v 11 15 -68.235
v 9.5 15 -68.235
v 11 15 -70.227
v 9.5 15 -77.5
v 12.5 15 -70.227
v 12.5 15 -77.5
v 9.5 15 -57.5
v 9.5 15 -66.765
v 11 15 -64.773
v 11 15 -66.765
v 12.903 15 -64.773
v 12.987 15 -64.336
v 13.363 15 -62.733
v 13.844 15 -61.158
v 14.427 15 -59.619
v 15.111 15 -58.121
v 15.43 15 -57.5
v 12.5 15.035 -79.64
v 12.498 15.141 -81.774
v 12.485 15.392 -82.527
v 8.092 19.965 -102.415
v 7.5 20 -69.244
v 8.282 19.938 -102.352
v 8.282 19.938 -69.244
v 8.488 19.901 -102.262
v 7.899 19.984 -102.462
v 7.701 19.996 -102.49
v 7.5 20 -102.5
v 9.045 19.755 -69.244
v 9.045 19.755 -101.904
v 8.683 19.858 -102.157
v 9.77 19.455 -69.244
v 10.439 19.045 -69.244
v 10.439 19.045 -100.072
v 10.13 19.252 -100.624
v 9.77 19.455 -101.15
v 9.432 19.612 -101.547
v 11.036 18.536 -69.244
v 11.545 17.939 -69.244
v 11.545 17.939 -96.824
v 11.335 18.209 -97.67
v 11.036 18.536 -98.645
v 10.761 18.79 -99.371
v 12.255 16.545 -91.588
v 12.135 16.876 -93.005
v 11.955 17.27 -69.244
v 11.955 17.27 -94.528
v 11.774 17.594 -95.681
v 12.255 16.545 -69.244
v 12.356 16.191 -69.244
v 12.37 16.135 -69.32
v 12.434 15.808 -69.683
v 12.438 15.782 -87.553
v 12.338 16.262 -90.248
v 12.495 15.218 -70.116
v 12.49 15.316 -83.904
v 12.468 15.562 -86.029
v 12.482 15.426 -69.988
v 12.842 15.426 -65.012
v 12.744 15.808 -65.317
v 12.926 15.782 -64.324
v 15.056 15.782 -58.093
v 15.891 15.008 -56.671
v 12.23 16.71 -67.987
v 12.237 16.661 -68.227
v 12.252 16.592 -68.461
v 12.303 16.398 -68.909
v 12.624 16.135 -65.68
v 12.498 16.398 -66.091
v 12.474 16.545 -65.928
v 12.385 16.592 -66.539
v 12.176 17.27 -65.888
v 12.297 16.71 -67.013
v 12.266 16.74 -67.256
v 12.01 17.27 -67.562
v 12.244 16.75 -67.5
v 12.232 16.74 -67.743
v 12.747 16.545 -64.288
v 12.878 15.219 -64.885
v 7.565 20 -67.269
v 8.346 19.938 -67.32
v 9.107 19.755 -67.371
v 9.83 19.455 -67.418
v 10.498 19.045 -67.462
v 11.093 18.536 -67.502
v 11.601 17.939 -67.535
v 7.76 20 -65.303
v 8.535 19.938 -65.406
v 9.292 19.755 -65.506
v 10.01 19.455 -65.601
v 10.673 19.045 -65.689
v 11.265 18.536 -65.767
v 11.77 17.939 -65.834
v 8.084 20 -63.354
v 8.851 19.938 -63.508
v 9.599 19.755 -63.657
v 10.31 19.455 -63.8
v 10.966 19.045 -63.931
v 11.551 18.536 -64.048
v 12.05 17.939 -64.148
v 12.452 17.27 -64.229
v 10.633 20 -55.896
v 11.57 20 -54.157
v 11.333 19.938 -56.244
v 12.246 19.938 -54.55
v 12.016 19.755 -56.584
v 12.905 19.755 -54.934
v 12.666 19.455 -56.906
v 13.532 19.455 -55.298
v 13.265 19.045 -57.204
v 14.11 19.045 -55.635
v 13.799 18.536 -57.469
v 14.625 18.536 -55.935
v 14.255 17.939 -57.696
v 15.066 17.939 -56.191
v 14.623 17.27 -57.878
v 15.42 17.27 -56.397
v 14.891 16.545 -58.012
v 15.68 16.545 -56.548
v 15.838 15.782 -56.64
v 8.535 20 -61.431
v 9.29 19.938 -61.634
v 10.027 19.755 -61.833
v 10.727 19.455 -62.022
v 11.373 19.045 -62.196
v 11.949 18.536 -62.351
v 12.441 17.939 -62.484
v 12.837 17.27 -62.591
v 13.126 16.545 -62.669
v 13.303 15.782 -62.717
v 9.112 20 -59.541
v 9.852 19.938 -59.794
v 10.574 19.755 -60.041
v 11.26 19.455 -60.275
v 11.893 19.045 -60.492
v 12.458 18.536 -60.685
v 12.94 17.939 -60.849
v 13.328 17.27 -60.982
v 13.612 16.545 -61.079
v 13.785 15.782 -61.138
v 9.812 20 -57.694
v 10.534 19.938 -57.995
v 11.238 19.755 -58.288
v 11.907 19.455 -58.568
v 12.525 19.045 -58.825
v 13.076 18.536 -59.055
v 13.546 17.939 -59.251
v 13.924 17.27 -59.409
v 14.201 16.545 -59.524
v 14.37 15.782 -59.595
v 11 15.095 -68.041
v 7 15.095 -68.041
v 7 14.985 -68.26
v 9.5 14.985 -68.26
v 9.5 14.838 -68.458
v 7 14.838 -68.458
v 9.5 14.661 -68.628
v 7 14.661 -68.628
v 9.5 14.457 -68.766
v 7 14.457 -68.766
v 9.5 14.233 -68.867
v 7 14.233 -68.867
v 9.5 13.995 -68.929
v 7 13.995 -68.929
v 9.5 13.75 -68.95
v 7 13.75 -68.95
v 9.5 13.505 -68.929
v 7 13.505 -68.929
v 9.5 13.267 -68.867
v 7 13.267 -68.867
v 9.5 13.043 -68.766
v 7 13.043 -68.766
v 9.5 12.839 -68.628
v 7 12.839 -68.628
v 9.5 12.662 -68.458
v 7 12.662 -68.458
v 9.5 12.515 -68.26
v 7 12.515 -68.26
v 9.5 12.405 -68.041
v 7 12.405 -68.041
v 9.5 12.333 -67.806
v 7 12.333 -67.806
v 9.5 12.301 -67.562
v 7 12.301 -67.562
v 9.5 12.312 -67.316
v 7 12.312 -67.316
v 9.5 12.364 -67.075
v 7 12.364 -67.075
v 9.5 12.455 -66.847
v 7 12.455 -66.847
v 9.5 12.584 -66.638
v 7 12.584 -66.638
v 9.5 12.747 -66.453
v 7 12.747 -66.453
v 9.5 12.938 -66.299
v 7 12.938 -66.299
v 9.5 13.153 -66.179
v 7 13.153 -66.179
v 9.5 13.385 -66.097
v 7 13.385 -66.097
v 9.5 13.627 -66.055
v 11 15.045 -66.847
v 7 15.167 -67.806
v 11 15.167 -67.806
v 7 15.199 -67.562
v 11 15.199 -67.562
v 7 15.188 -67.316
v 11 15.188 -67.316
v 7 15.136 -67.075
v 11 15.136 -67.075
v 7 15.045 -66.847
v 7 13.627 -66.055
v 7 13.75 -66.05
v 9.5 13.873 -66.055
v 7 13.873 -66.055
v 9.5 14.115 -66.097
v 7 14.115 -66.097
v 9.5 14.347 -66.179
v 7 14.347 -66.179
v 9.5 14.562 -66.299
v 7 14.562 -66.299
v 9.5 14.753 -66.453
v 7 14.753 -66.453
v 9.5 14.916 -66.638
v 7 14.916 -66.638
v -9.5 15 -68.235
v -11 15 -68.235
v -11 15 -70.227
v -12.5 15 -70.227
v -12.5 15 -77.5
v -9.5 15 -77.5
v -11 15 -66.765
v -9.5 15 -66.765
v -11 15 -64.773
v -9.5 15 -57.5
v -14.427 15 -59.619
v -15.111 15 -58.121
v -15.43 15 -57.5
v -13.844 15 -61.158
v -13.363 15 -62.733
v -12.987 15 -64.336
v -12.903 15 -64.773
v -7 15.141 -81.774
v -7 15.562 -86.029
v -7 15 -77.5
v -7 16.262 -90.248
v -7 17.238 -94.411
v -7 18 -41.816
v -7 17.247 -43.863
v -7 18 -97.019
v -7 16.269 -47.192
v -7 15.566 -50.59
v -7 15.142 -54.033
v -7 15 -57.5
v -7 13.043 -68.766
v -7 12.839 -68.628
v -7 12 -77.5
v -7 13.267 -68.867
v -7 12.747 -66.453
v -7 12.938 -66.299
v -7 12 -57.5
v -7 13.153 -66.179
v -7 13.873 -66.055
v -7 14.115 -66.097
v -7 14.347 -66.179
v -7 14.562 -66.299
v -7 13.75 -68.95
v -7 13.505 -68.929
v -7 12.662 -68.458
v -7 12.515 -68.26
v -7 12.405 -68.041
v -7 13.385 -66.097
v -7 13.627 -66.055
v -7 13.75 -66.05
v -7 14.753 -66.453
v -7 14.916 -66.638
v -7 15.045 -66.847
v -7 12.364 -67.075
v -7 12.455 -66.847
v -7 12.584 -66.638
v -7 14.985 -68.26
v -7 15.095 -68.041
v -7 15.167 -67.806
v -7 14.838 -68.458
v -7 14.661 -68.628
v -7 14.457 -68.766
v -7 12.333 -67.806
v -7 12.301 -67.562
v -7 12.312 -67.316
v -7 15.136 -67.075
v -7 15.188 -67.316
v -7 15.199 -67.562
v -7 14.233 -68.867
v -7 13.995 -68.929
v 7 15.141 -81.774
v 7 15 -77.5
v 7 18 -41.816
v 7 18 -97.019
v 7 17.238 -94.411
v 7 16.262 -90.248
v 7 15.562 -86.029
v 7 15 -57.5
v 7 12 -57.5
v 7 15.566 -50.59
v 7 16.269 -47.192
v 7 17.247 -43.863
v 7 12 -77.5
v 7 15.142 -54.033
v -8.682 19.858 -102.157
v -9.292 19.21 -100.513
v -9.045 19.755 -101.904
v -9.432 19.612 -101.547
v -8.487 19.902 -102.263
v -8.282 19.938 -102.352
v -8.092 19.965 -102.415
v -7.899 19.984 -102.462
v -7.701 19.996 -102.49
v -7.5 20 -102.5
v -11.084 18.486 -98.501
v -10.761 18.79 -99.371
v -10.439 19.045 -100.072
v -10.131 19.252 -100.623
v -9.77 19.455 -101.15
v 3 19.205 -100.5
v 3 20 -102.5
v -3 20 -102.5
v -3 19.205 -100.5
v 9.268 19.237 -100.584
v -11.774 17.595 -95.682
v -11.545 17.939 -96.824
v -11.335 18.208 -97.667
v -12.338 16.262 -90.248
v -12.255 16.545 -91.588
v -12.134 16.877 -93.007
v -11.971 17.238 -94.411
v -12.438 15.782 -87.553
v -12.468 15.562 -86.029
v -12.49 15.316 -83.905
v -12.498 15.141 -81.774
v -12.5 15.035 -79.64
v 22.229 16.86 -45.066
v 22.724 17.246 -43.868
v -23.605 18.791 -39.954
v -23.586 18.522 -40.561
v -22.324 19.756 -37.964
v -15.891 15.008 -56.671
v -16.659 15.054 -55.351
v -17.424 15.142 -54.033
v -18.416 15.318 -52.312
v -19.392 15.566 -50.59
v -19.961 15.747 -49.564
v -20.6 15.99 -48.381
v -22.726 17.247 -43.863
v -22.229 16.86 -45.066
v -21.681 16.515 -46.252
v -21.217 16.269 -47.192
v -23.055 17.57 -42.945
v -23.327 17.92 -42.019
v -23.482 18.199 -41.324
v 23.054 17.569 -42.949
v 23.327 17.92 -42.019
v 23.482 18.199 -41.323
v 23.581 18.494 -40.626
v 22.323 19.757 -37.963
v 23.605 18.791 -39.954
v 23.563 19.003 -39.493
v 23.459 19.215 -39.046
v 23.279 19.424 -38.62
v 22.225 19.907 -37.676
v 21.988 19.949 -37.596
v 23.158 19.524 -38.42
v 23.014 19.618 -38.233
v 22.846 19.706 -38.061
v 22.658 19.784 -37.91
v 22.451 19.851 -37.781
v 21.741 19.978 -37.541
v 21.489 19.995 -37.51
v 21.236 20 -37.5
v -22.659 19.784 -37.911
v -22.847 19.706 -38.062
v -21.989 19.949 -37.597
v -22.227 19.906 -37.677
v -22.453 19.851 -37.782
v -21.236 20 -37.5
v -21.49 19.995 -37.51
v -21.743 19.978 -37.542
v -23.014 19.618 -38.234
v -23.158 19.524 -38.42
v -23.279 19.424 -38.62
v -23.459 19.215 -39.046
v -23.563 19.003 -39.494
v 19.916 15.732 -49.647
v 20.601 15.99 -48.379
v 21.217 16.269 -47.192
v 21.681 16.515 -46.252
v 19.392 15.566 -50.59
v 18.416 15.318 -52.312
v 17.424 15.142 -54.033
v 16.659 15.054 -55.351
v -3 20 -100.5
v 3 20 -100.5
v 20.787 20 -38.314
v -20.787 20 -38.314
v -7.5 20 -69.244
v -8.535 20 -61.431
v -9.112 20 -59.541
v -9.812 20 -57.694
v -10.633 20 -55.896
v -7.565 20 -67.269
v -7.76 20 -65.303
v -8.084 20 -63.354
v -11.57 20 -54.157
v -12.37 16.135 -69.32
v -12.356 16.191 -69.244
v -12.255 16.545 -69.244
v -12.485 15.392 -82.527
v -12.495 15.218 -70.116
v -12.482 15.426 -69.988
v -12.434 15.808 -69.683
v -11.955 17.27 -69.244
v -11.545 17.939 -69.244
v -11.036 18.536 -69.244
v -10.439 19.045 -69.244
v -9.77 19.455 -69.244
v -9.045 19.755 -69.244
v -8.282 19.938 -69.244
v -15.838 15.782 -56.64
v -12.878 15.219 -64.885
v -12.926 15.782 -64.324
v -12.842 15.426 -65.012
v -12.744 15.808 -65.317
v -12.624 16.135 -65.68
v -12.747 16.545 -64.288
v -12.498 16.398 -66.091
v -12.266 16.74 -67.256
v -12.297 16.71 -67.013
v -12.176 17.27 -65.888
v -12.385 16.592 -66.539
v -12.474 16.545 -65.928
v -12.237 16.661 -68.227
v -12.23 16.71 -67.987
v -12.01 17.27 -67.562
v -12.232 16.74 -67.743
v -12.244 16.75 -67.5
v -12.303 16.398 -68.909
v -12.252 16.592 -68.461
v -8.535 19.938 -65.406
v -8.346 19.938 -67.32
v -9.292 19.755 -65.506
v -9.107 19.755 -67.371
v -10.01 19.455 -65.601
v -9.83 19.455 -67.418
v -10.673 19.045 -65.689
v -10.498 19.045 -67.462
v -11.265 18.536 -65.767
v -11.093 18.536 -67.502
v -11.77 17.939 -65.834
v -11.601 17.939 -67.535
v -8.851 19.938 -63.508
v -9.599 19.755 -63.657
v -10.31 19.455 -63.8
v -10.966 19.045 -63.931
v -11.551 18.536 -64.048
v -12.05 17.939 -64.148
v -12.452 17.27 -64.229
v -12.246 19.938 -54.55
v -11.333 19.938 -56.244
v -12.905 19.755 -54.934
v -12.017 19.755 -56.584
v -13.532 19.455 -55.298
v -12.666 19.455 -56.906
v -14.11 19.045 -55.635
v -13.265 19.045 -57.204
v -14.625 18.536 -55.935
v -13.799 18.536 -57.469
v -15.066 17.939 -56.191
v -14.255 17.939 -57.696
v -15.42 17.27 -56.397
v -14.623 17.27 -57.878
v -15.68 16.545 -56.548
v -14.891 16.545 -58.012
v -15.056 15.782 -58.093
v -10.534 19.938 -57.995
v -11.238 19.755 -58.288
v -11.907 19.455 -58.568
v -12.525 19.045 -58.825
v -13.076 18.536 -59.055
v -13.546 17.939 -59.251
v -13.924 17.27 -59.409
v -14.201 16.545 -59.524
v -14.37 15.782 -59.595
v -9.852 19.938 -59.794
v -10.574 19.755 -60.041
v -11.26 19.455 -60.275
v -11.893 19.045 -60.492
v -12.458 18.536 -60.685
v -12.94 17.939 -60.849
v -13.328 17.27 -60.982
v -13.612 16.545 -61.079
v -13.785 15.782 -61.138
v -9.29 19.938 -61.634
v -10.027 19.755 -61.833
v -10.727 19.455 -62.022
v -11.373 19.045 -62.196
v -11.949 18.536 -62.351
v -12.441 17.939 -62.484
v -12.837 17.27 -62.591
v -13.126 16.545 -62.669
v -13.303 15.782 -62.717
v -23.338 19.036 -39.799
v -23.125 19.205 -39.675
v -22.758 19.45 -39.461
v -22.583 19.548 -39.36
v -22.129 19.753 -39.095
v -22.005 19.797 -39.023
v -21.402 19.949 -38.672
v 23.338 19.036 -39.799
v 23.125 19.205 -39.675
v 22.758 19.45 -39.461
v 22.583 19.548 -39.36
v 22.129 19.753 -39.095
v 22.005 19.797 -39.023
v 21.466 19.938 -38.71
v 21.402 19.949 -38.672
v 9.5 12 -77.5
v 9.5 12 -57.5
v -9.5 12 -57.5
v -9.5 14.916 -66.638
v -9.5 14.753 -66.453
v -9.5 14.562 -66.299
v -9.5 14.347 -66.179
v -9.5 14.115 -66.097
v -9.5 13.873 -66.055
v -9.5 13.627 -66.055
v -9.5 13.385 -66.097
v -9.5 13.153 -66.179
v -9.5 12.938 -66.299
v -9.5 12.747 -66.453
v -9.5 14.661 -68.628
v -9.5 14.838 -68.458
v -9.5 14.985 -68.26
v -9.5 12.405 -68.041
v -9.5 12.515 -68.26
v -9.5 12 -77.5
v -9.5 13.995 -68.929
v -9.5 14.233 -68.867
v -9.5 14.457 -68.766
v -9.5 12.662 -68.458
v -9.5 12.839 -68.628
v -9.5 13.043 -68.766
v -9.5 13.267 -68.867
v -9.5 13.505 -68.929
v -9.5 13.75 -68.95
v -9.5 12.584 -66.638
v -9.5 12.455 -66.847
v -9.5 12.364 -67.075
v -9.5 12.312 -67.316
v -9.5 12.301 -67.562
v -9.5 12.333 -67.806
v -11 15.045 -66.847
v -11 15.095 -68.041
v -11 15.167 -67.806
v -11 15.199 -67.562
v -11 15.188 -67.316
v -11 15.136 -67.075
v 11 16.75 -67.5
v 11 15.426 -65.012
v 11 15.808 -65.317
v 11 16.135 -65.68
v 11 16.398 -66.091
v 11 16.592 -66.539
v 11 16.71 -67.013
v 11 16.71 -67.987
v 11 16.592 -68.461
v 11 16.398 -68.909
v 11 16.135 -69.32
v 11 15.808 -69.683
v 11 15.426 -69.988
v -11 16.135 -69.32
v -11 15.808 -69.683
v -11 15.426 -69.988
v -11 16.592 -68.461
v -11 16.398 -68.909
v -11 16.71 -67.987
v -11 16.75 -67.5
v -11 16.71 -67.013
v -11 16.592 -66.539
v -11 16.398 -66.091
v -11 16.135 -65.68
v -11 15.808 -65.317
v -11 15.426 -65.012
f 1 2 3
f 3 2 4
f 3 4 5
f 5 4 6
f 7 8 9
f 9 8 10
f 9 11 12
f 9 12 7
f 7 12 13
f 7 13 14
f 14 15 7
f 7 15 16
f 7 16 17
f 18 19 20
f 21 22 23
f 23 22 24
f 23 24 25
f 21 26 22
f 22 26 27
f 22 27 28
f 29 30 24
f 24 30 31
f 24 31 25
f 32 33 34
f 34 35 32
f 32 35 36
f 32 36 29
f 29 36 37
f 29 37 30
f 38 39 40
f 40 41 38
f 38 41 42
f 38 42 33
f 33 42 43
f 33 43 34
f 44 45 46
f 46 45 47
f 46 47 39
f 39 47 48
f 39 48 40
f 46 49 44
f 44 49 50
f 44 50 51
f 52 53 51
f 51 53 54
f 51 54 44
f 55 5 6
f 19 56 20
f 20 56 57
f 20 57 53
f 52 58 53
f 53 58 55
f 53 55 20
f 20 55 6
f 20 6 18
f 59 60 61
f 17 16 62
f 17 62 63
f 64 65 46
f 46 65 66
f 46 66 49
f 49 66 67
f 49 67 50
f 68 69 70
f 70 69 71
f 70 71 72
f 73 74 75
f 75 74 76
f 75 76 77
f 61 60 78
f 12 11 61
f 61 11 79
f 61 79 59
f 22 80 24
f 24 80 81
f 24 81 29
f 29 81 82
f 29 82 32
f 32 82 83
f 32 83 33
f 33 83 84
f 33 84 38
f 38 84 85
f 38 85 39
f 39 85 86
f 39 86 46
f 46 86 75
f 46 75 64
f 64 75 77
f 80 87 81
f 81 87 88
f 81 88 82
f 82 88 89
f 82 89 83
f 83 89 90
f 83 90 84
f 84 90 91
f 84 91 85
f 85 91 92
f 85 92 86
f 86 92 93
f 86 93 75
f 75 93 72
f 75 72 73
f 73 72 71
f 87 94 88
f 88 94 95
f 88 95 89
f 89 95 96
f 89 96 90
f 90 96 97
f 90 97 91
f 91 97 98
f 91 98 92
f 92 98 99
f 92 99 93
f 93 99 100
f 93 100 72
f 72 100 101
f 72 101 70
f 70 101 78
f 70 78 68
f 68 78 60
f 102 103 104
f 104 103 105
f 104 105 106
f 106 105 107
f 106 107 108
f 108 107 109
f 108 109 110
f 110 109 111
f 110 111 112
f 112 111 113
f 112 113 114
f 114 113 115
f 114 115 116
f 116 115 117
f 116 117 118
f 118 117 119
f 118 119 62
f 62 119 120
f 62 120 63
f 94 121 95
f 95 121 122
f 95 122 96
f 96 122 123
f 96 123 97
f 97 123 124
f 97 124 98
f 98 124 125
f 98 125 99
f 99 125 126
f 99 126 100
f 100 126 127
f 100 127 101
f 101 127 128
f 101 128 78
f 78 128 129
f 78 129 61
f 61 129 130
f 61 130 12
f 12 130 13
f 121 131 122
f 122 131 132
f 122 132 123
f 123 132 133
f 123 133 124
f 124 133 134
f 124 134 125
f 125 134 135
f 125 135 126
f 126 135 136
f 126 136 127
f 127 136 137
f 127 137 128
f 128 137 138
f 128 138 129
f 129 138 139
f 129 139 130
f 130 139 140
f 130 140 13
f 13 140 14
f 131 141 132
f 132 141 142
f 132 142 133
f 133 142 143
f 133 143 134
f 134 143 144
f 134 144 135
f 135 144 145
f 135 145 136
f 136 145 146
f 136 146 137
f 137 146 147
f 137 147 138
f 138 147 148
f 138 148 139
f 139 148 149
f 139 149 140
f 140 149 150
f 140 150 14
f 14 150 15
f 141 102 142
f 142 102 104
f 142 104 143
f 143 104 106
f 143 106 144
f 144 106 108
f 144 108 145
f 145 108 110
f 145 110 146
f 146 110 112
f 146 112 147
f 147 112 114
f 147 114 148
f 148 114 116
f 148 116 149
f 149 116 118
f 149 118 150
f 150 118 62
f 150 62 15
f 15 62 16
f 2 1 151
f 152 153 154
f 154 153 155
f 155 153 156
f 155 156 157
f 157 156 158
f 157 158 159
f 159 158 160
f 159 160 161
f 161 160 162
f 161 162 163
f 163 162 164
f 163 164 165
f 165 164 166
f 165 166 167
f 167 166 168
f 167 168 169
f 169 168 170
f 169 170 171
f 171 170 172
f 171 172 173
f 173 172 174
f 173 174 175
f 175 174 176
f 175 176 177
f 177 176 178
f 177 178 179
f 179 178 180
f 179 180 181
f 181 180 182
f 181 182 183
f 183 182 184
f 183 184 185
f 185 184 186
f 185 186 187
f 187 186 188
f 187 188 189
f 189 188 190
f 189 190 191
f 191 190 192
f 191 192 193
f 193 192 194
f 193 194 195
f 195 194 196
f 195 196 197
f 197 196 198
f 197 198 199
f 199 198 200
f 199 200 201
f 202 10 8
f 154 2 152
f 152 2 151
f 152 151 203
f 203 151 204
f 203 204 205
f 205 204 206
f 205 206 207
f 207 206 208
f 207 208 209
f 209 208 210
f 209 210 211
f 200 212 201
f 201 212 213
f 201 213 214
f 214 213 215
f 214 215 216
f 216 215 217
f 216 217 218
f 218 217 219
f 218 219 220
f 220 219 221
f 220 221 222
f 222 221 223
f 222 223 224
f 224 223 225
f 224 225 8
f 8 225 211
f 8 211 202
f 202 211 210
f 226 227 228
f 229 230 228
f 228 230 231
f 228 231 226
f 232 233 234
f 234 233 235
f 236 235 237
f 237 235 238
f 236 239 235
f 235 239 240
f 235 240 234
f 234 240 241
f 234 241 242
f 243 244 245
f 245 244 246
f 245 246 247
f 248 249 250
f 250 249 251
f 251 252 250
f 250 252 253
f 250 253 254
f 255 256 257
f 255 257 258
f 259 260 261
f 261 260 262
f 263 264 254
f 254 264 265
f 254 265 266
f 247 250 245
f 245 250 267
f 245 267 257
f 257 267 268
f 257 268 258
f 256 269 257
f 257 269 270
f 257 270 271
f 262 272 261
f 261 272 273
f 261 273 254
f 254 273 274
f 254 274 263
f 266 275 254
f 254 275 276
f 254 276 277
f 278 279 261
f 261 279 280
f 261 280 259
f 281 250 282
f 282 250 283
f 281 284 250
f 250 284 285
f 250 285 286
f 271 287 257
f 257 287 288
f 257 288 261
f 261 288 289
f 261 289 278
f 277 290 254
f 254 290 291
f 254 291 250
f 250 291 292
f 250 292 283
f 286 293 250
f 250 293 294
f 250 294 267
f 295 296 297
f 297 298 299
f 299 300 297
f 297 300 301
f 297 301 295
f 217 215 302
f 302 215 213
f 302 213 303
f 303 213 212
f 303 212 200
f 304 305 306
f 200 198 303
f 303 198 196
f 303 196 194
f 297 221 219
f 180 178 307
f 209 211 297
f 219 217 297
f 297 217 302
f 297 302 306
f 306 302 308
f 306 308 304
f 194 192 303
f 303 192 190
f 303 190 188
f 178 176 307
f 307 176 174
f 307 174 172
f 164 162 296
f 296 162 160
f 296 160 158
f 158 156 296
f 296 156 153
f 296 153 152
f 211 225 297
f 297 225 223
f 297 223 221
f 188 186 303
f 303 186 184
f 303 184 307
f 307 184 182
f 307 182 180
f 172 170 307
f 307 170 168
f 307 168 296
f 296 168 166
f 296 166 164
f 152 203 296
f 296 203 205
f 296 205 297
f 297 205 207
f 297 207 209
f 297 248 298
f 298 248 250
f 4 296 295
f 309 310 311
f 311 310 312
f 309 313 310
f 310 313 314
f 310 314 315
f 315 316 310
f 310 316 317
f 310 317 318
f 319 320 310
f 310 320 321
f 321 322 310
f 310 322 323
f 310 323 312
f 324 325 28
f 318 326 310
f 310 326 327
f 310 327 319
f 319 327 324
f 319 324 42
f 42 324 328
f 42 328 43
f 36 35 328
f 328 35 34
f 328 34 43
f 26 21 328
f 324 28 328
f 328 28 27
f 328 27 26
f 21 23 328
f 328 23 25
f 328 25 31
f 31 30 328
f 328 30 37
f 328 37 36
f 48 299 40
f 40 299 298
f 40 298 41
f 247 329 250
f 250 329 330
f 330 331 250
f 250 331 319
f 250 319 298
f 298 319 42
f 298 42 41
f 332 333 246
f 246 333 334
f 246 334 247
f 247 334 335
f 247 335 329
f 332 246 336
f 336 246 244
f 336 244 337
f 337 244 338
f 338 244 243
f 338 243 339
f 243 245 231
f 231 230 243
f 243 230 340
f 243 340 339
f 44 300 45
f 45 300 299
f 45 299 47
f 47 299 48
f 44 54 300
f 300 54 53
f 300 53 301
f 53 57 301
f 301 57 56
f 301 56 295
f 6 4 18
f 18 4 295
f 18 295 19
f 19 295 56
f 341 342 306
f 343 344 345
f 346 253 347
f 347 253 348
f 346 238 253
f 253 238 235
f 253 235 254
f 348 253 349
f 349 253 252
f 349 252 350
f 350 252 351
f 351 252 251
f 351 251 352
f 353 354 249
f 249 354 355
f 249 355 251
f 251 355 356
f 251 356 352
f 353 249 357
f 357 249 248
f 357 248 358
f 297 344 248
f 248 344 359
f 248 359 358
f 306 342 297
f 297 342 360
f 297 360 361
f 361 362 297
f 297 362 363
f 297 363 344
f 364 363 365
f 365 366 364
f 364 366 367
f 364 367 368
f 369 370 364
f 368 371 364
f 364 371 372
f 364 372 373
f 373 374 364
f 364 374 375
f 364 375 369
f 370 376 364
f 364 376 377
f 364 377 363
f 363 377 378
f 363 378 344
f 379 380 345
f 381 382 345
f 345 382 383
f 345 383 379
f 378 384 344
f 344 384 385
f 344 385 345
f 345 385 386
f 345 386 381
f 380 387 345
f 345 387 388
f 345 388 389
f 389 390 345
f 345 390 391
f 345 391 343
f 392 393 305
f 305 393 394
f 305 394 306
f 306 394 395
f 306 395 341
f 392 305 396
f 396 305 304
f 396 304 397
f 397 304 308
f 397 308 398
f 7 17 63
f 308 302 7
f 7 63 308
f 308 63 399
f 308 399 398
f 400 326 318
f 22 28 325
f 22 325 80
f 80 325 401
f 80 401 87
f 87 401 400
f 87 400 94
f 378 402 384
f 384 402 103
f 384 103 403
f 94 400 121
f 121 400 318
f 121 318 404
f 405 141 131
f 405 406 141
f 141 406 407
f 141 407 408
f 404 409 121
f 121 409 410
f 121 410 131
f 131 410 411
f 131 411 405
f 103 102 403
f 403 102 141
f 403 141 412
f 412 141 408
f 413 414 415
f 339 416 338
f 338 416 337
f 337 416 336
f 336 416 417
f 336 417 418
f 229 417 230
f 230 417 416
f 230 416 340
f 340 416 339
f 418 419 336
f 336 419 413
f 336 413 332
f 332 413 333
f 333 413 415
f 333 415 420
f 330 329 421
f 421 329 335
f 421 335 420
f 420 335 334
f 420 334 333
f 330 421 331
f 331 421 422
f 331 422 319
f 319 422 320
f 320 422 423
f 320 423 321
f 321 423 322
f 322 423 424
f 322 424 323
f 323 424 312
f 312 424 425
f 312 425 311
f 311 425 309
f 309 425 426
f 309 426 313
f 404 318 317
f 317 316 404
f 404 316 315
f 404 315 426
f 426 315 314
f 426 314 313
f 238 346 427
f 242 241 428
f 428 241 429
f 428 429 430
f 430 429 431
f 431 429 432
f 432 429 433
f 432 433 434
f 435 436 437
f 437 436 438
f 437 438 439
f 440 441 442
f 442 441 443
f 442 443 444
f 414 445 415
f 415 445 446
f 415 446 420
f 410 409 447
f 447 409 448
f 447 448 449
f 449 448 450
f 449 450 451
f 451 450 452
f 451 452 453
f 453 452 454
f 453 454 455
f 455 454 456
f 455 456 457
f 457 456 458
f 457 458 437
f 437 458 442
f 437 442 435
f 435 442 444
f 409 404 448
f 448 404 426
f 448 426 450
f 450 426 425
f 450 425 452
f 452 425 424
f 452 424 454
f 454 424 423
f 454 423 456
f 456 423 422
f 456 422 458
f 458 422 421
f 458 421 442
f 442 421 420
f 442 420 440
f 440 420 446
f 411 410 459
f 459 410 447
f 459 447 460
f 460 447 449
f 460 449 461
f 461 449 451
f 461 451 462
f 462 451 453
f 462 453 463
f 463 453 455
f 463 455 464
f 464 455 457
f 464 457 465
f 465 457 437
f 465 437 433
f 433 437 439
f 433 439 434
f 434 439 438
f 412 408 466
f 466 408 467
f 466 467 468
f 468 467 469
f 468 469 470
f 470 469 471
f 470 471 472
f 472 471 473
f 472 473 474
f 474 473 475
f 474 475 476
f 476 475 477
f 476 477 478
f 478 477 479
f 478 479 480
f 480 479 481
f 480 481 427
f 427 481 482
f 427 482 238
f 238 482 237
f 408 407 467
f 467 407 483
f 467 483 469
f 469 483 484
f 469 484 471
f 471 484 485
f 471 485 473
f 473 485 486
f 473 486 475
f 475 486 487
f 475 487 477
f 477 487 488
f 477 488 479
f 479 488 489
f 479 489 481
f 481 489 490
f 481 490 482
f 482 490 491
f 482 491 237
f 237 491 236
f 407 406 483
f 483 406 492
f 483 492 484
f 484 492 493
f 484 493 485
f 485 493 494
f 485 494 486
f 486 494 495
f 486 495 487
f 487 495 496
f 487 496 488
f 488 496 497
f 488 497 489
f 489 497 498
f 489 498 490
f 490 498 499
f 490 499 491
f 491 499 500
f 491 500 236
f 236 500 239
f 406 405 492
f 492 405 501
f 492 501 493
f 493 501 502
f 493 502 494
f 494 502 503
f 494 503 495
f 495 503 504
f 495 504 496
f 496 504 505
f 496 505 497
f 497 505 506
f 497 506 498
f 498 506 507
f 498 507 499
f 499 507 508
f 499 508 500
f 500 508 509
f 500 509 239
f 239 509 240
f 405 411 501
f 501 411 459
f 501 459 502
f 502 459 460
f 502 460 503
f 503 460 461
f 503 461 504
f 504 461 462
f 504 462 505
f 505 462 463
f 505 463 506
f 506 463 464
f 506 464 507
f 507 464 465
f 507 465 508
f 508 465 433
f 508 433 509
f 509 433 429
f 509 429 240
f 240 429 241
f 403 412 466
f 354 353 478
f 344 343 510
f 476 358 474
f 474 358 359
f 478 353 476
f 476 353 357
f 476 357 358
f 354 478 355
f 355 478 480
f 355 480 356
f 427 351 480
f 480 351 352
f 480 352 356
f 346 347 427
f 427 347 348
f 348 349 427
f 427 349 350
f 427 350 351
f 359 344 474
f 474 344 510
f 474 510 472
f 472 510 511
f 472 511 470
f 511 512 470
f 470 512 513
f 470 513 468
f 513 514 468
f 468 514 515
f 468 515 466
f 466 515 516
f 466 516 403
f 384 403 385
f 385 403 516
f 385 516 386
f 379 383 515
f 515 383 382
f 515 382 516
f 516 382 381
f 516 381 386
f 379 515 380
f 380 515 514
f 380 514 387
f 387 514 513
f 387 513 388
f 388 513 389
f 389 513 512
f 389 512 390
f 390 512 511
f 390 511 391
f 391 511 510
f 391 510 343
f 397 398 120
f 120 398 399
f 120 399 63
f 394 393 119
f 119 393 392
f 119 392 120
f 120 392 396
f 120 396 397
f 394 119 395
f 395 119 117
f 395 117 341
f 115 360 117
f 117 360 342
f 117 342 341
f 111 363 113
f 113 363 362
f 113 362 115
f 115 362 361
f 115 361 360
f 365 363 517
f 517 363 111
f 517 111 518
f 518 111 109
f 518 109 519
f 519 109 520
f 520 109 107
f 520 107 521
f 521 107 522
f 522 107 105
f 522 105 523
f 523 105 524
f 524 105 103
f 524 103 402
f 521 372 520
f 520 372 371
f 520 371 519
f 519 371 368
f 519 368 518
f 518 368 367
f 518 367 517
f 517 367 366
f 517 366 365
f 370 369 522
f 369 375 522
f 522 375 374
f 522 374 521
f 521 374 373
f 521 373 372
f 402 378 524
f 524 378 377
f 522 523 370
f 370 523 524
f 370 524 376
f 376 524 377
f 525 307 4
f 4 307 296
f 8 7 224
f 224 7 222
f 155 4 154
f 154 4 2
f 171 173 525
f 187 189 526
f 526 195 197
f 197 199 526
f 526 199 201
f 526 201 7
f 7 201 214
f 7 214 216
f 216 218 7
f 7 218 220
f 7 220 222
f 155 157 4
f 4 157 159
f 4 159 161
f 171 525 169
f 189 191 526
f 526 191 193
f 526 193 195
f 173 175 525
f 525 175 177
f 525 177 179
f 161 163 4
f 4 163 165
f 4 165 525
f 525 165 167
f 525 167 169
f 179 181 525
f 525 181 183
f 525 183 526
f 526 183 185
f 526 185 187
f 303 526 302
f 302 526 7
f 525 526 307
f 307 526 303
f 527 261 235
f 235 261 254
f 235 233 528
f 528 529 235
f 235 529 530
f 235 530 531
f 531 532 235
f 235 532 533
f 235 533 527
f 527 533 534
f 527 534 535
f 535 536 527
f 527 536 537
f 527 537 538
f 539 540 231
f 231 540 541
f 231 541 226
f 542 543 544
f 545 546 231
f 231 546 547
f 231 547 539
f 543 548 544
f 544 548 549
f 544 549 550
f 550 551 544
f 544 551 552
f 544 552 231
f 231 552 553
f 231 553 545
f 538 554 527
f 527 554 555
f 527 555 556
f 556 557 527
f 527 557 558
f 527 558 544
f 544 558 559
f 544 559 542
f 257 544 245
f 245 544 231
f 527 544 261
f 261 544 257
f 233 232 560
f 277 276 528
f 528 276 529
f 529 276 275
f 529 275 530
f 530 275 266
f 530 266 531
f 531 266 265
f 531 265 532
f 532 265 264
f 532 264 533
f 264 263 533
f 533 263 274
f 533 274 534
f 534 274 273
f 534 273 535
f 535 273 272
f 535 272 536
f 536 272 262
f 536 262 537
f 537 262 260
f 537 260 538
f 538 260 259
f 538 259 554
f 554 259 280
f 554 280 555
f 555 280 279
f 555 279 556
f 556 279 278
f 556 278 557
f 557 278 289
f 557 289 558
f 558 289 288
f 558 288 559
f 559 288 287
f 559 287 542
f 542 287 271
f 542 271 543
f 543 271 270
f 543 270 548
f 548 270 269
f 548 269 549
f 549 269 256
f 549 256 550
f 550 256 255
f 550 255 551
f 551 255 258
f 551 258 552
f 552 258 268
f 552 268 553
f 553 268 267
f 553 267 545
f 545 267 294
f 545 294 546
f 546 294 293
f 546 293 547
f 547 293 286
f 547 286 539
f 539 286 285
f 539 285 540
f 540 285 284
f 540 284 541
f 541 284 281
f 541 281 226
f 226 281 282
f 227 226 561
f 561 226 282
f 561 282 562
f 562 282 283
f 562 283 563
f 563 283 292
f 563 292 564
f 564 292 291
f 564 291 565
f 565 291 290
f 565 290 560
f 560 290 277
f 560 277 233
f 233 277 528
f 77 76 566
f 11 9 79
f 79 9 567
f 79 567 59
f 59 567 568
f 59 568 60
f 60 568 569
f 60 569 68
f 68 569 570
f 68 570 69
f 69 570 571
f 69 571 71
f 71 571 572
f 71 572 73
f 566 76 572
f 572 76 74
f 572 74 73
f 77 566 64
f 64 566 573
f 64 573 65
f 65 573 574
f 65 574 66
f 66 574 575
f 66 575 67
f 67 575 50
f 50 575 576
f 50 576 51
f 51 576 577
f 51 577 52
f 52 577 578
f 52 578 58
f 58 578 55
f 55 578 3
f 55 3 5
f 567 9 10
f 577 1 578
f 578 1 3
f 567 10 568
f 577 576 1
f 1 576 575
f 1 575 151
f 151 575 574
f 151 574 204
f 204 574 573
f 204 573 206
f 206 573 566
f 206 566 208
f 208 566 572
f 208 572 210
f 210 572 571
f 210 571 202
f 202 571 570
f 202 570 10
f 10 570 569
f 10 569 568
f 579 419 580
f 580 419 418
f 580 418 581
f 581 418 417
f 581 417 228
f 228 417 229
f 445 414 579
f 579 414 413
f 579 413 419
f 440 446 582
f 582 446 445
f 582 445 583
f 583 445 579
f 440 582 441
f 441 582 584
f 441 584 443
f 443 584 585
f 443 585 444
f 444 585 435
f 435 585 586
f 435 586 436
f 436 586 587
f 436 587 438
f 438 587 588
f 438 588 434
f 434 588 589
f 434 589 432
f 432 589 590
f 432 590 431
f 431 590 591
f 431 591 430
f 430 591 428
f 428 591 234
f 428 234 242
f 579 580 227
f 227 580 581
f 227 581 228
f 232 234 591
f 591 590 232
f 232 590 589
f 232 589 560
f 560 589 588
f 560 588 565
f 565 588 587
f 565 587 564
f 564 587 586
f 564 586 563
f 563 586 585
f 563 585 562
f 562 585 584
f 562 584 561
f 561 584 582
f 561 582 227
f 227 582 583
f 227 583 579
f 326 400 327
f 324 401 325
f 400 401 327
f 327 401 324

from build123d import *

# Parameters (mm, degrees)
EXTRUDE_1_DEPTH           = 20
SKETCH_2_R                = 4
CUT_EXTRUDE_1_DEPTH       = 52
FILLET_1_R                = 25
FILLET_2_R                = 5
FILLET_3_R                = 10
SKETCH_4_W                = 8
SKETCH_4_H                = 8
CUT_EXTRUDE_2_DEPTH       = 5
CUT_EXTRUDE_START         = -57
SKETCH_4_2_W              = 8
SKETCH_4_2_H              = 8
CUT_EXTRUDE_3_DEPTH       = 5
SKETCH_5_W                = 15
SKETCH_5_H                = 5
CUT_EXTRUDE_4_DEPTH       = 7.5
SKETCH_6_R                = 1.45
CUT_EXTRUDE_5_DEPTH       = 10
CUT_EXTRUDE_6_DEPTH       = 7
SKETCH_9_R                = 1.45
CUT_EXTRUDE_7_DEPTH       = 90
CUT_EXTRUDE_8_DEPTH       = 116.378724321
CUT_EXTRUDE_8_DEPTH_BACK  = 116.378724321
SKETCH_10_W               = 136.912738892
SKETCH_10_H               = 37.062753894
SKETCH_11_W               = 2.5
SKETCH_11_H               = 20
EXTRUDE_2_DEPTH           = 3
CUT_EXTRUDE_9_DEPTH       = 110.555003156
CUT_EXTRUDE_9_DEPTH_BACK  = 110.555003156
SKETCH_12_R               = 1.45
CUT_EXTRUDE_10_DEPTH      = 110.555003156
CUT_EXTRUDE_10_DEPTH_BACK = 1.5
CUT_EXTRUDE_10_START      = 3
SKETCH_13_R               = 3
CUT_EXTRUDE_11_DEPTH      = 1.5
CUT_EXTRUDE_11_DEPTH_BACK = 110.555003156
CUT_EXTRUDE_11_START      = -22
SKETCH_13_2_R             = 3
SKETCH_14_W               = 6
SKETCH_14_H               = 2
CUT_EXTRUDE_12_DEPTH      = 1.5


with BuildPart() as part:
    # Эскиз1 → Бобышка-Вытянуть1 (new body)
    with BuildSketch(Plane(origin=(0, 0, 0), x_dir=(1, 0, 0), z_dir=(0, 1, 0))):
        Polygon((21, 25), (-21, 25), (-21, 0), (-28.5, 0), (-28.5, 35), (-12.5, 62.5), (-12.5, 110), (12.5, 110), (12.5, 62.5), (28.5, 35), (28.5, 0), (21, 0), align=None)
    extrude(amount=EXTRUDE_1_DEPTH)

    # Эскиз2 → Вырез-Вытянуть1 (cut)
    with BuildSketch(Plane(origin=(28.5, 0, 0), x_dir=(0, 0, -1), z_dir=(1, 0, 0))):
        with Locations((10, 10)):
            Circle(SKETCH_2_R)
    extrude(amount=-CUT_EXTRUDE_1_DEPTH, mode=Mode.SUBTRACT)

    # Скругление1
    fillet_1_edges = [part.edges().sort_by_distance(p)[0] for p in [
        (28.5, 10, -35),
        (-28.5, 10, -35),
        (-12.5, 10, -62.5),
        (12.5, 10, -62.5),
    ]]
    fillet(fillet_1_edges, radius=FILLET_1_R)

    # Скругление2
    fillet_2_edges = [part.edges().sort_by_distance(p)[0] for p in [
        (28.5, 0, -14.128221453),
        (24.75, 0, 0),
        (-24.75, 0, 0),
        (-12.5, 0, -89.621778547),
        (-12.5, 20, -89.621778547),
        (28.5, 10, 0),
        (-28.5, 10, 0),
        (-24.75, 20, 0),
        (24.75, 20, 0),
        (-28.5, 0, -14.128221453),
        (-28.5, 20, -14.128221453),
        (20.5, 0, -48.75),
        (-20.5, 0, -48.75),
        (12.5, 0, -89.621778547),
        (27.637291802, 0, -34.76729112),
        (-27.637291802, 0, -34.76729112),
        (28.5, 20, -14.128221453),
        (-20.5, 20, -48.75),
        (20.5, 20, -48.75),
        (12.5, 20, -89.621778547),
        (27.637291802, 20, -34.76729112),
        (-27.637291802, 20, -34.76729112),
        (-13.362708198, 0, -62.73270888),
        (-13.362708198, 20, -62.73270888),
        (13.362708198, 0, -62.73270888),
        (13.362708198, 20, -62.73270888),
    ]]
    fillet(fillet_2_edges, radius=FILLET_2_R)

    # Скругление3
    fillet_3_edges = [part.edges().sort_by_distance(p)[0] for p in [
        (0, 0, -25),
        (0, 20, -25),
    ]]
    fillet(fillet_3_edges, radius=FILLET_3_R - 0.0001)  # a hair under: the kernel refuses the full size

    # Эскиз4 → Вырез-Вытянуть2 (cut)
    with BuildSketch(Plane(origin=(28.5, 0, 0), x_dir=(0, 0, -1), z_dir=(1, 0, 0))):
        with Locations((10, 10)):
            Rectangle(SKETCH_4_W, SKETCH_4_H)
    extrude(amount=-CUT_EXTRUDE_2_DEPTH, mode=Mode.SUBTRACT)

    # Эскиз4<2> → Вырез-Вытянуть3 (cut)
    with BuildSketch(Plane(origin=(28.5, 0, 0), x_dir=(0, 0, -1), z_dir=(1, 0, 0)).offset(CUT_EXTRUDE_START)):
        with Locations((10, 10)):
            Rectangle(SKETCH_4_2_W, SKETCH_4_2_H)
    extrude(amount=CUT_EXTRUDE_3_DEPTH, mode=Mode.SUBTRACT)

    # Эскиз5 → Вырез-Вытянуть4 (cut)
    with BuildSketch(Plane(origin=(0, 0, -110), x_dir=(-1, 0, 0), z_dir=(0, 0, -1))):
        with Locations((0, 17.5)):
            Rectangle(SKETCH_5_W, SKETCH_5_H)
        with Locations((0, 2.5)):
            Rectangle(SKETCH_5_W, SKETCH_5_H)
    extrude(amount=-CUT_EXTRUDE_4_DEPTH, mode=Mode.SUBTRACT)

    # Эскиз6 → Вырез-Вытянуть5 (cut)
    with BuildSketch(Plane(origin=(0, 15, 0), x_dir=(1, 0, 0), z_dir=(0, 1, 0))):
        with Locations(Location((-4, 106.25, 0), (0, 0, 270))):
            Circle(SKETCH_6_R)
        with Locations(Location((4, 106.25, 0), (0, 0, 90))):
            Circle(SKETCH_6_R)
    extrude(amount=-CUT_EXTRUDE_5_DEPTH, mode=Mode.SUBTRACT)

    # Эскиз8 → Вырез-Вытянуть6 (cut, symmetric)
    with BuildSketch(Plane(origin=(0, 0, 0), x_dir=(0, 0, -1), z_dir=(1, 0, 0))):
        with BuildLine():
            Line((102.5, 18), (37.5, 18))
            ThreePointArc((37.5, 18), (29.5, 10), (37.5, 2))
            Line((37.5, 2), (102.5, 2))
            Line((102.5, 2), (102.5, 18))
        make_face()
    extrude(amount=CUT_EXTRUDE_6_DEPTH, both=True, mode=Mode.SUBTRACT)

    # Эскиз9 → Вырез-Вытянуть7 (cut)
    with BuildSketch(Plane(origin=(0, 0, -110), x_dir=(-1, 0, 0), z_dir=(0, 0, -1))):
        with Locations((-10, 10)):
            Circle(SKETCH_9_R)
        with Locations((10, 10)):
            Circle(SKETCH_9_R)
    extrude(amount=-CUT_EXTRUDE_7_DEPTH, mode=Mode.SUBTRACT)

    # Эскиз10 → Вырез-Вытянуть8 (cut, two sides: drawn at the far end of the back side and taken through both)
    with BuildSketch(Plane(origin=(0, 0, 0), x_dir=(0, 0, -1), z_dir=(1, 0, 0)).offset(-CUT_EXTRUDE_8_DEPTH_BACK)):
        with Locations((61.52396192, 11.158211059)):
            Rectangle(SKETCH_10_W, SKETCH_10_H)
        with BuildLine():
            Line((37.5, 20), (102.5, 20))
            ThreePointArc((102.5, 20), (90.247548784, 16.26225608), (77.5, 15))
            Line((77.5, 15), (57.5, 15))
            ThreePointArc((57.5, 15), (47.192235936, 16.268943744), (37.5, 20))
        make_face(mode=Mode.SUBTRACT)
    extrude(amount=CUT_EXTRUDE_8_DEPTH + CUT_EXTRUDE_8_DEPTH_BACK, mode=Mode.SUBTRACT)

    # Эскиз11 → Бобышка-Вытянуть2 (add)
    with BuildSketch(Plane.XZ.offset(-15)):
        with Locations((8.25, -67.5)):
            Rectangle(SKETCH_11_W, SKETCH_11_H)
        with Locations((-8.25, -67.5)):
            Rectangle(SKETCH_11_W, SKETCH_11_H)
    extrude(amount=EXTRUDE_2_DEPTH)

    # Эскиз12 → Вырез-Вытянуть9 (cut, two sides: drawn at the far end of the back side and taken through both)
    with BuildSketch(Plane(origin=(9.5, 0, 0), x_dir=(0, 0, -1), z_dir=(1, 0, 0)).offset(-CUT_EXTRUDE_9_DEPTH_BACK)):
        with Locations(Location((67.5, 13.75, 0), (0, 0, 59.549685979))):
            Circle(SKETCH_12_R)
    extrude(amount=CUT_EXTRUDE_9_DEPTH + CUT_EXTRUDE_9_DEPTH_BACK, mode=Mode.SUBTRACT)

    # Эскиз13 → Вырез-Вытянуть10 (cut, two sides: drawn at the far end of the back side and taken through both)
    with BuildSketch(Plane(origin=(9.5, 0, 0), x_dir=(0, 0, -1), z_dir=(1, 0, 0)).offset(CUT_EXTRUDE_10_START - CUT_EXTRUDE_10_DEPTH_BACK)):
        with Locations((67.5, 13.75)):
            Circle(SKETCH_13_R)
    extrude(amount=CUT_EXTRUDE_10_DEPTH + CUT_EXTRUDE_10_DEPTH_BACK, mode=Mode.SUBTRACT)

    # Эскиз13<2> → Вырез-Вытянуть11 (cut, two sides: drawn at the far end of the back side and taken through both)
    with BuildSketch(Plane(origin=(9.5, 0, 0), x_dir=(0, 0, -1), z_dir=(1, 0, 0)).offset(CUT_EXTRUDE_11_START - CUT_EXTRUDE_11_DEPTH_BACK)):
        with Locations((67.5, 13.75)):
            Circle(SKETCH_13_2_R)
    extrude(amount=CUT_EXTRUDE_11_DEPTH + CUT_EXTRUDE_11_DEPTH_BACK, mode=Mode.SUBTRACT)

    # Эскиз14 → Вырез-Вытянуть12 (cut)
    with BuildSketch(Plane(origin=(0, 20, 0), x_dir=(1, 0, 0), z_dir=(0, 1, 0))):
        with Locations((0, 101.5)):
            Rectangle(SKETCH_14_W, SKETCH_14_H)
    extrude(amount=-CUT_EXTRUDE_12_DEPTH, mode=Mode.SUBTRACT)


solid = part.part
